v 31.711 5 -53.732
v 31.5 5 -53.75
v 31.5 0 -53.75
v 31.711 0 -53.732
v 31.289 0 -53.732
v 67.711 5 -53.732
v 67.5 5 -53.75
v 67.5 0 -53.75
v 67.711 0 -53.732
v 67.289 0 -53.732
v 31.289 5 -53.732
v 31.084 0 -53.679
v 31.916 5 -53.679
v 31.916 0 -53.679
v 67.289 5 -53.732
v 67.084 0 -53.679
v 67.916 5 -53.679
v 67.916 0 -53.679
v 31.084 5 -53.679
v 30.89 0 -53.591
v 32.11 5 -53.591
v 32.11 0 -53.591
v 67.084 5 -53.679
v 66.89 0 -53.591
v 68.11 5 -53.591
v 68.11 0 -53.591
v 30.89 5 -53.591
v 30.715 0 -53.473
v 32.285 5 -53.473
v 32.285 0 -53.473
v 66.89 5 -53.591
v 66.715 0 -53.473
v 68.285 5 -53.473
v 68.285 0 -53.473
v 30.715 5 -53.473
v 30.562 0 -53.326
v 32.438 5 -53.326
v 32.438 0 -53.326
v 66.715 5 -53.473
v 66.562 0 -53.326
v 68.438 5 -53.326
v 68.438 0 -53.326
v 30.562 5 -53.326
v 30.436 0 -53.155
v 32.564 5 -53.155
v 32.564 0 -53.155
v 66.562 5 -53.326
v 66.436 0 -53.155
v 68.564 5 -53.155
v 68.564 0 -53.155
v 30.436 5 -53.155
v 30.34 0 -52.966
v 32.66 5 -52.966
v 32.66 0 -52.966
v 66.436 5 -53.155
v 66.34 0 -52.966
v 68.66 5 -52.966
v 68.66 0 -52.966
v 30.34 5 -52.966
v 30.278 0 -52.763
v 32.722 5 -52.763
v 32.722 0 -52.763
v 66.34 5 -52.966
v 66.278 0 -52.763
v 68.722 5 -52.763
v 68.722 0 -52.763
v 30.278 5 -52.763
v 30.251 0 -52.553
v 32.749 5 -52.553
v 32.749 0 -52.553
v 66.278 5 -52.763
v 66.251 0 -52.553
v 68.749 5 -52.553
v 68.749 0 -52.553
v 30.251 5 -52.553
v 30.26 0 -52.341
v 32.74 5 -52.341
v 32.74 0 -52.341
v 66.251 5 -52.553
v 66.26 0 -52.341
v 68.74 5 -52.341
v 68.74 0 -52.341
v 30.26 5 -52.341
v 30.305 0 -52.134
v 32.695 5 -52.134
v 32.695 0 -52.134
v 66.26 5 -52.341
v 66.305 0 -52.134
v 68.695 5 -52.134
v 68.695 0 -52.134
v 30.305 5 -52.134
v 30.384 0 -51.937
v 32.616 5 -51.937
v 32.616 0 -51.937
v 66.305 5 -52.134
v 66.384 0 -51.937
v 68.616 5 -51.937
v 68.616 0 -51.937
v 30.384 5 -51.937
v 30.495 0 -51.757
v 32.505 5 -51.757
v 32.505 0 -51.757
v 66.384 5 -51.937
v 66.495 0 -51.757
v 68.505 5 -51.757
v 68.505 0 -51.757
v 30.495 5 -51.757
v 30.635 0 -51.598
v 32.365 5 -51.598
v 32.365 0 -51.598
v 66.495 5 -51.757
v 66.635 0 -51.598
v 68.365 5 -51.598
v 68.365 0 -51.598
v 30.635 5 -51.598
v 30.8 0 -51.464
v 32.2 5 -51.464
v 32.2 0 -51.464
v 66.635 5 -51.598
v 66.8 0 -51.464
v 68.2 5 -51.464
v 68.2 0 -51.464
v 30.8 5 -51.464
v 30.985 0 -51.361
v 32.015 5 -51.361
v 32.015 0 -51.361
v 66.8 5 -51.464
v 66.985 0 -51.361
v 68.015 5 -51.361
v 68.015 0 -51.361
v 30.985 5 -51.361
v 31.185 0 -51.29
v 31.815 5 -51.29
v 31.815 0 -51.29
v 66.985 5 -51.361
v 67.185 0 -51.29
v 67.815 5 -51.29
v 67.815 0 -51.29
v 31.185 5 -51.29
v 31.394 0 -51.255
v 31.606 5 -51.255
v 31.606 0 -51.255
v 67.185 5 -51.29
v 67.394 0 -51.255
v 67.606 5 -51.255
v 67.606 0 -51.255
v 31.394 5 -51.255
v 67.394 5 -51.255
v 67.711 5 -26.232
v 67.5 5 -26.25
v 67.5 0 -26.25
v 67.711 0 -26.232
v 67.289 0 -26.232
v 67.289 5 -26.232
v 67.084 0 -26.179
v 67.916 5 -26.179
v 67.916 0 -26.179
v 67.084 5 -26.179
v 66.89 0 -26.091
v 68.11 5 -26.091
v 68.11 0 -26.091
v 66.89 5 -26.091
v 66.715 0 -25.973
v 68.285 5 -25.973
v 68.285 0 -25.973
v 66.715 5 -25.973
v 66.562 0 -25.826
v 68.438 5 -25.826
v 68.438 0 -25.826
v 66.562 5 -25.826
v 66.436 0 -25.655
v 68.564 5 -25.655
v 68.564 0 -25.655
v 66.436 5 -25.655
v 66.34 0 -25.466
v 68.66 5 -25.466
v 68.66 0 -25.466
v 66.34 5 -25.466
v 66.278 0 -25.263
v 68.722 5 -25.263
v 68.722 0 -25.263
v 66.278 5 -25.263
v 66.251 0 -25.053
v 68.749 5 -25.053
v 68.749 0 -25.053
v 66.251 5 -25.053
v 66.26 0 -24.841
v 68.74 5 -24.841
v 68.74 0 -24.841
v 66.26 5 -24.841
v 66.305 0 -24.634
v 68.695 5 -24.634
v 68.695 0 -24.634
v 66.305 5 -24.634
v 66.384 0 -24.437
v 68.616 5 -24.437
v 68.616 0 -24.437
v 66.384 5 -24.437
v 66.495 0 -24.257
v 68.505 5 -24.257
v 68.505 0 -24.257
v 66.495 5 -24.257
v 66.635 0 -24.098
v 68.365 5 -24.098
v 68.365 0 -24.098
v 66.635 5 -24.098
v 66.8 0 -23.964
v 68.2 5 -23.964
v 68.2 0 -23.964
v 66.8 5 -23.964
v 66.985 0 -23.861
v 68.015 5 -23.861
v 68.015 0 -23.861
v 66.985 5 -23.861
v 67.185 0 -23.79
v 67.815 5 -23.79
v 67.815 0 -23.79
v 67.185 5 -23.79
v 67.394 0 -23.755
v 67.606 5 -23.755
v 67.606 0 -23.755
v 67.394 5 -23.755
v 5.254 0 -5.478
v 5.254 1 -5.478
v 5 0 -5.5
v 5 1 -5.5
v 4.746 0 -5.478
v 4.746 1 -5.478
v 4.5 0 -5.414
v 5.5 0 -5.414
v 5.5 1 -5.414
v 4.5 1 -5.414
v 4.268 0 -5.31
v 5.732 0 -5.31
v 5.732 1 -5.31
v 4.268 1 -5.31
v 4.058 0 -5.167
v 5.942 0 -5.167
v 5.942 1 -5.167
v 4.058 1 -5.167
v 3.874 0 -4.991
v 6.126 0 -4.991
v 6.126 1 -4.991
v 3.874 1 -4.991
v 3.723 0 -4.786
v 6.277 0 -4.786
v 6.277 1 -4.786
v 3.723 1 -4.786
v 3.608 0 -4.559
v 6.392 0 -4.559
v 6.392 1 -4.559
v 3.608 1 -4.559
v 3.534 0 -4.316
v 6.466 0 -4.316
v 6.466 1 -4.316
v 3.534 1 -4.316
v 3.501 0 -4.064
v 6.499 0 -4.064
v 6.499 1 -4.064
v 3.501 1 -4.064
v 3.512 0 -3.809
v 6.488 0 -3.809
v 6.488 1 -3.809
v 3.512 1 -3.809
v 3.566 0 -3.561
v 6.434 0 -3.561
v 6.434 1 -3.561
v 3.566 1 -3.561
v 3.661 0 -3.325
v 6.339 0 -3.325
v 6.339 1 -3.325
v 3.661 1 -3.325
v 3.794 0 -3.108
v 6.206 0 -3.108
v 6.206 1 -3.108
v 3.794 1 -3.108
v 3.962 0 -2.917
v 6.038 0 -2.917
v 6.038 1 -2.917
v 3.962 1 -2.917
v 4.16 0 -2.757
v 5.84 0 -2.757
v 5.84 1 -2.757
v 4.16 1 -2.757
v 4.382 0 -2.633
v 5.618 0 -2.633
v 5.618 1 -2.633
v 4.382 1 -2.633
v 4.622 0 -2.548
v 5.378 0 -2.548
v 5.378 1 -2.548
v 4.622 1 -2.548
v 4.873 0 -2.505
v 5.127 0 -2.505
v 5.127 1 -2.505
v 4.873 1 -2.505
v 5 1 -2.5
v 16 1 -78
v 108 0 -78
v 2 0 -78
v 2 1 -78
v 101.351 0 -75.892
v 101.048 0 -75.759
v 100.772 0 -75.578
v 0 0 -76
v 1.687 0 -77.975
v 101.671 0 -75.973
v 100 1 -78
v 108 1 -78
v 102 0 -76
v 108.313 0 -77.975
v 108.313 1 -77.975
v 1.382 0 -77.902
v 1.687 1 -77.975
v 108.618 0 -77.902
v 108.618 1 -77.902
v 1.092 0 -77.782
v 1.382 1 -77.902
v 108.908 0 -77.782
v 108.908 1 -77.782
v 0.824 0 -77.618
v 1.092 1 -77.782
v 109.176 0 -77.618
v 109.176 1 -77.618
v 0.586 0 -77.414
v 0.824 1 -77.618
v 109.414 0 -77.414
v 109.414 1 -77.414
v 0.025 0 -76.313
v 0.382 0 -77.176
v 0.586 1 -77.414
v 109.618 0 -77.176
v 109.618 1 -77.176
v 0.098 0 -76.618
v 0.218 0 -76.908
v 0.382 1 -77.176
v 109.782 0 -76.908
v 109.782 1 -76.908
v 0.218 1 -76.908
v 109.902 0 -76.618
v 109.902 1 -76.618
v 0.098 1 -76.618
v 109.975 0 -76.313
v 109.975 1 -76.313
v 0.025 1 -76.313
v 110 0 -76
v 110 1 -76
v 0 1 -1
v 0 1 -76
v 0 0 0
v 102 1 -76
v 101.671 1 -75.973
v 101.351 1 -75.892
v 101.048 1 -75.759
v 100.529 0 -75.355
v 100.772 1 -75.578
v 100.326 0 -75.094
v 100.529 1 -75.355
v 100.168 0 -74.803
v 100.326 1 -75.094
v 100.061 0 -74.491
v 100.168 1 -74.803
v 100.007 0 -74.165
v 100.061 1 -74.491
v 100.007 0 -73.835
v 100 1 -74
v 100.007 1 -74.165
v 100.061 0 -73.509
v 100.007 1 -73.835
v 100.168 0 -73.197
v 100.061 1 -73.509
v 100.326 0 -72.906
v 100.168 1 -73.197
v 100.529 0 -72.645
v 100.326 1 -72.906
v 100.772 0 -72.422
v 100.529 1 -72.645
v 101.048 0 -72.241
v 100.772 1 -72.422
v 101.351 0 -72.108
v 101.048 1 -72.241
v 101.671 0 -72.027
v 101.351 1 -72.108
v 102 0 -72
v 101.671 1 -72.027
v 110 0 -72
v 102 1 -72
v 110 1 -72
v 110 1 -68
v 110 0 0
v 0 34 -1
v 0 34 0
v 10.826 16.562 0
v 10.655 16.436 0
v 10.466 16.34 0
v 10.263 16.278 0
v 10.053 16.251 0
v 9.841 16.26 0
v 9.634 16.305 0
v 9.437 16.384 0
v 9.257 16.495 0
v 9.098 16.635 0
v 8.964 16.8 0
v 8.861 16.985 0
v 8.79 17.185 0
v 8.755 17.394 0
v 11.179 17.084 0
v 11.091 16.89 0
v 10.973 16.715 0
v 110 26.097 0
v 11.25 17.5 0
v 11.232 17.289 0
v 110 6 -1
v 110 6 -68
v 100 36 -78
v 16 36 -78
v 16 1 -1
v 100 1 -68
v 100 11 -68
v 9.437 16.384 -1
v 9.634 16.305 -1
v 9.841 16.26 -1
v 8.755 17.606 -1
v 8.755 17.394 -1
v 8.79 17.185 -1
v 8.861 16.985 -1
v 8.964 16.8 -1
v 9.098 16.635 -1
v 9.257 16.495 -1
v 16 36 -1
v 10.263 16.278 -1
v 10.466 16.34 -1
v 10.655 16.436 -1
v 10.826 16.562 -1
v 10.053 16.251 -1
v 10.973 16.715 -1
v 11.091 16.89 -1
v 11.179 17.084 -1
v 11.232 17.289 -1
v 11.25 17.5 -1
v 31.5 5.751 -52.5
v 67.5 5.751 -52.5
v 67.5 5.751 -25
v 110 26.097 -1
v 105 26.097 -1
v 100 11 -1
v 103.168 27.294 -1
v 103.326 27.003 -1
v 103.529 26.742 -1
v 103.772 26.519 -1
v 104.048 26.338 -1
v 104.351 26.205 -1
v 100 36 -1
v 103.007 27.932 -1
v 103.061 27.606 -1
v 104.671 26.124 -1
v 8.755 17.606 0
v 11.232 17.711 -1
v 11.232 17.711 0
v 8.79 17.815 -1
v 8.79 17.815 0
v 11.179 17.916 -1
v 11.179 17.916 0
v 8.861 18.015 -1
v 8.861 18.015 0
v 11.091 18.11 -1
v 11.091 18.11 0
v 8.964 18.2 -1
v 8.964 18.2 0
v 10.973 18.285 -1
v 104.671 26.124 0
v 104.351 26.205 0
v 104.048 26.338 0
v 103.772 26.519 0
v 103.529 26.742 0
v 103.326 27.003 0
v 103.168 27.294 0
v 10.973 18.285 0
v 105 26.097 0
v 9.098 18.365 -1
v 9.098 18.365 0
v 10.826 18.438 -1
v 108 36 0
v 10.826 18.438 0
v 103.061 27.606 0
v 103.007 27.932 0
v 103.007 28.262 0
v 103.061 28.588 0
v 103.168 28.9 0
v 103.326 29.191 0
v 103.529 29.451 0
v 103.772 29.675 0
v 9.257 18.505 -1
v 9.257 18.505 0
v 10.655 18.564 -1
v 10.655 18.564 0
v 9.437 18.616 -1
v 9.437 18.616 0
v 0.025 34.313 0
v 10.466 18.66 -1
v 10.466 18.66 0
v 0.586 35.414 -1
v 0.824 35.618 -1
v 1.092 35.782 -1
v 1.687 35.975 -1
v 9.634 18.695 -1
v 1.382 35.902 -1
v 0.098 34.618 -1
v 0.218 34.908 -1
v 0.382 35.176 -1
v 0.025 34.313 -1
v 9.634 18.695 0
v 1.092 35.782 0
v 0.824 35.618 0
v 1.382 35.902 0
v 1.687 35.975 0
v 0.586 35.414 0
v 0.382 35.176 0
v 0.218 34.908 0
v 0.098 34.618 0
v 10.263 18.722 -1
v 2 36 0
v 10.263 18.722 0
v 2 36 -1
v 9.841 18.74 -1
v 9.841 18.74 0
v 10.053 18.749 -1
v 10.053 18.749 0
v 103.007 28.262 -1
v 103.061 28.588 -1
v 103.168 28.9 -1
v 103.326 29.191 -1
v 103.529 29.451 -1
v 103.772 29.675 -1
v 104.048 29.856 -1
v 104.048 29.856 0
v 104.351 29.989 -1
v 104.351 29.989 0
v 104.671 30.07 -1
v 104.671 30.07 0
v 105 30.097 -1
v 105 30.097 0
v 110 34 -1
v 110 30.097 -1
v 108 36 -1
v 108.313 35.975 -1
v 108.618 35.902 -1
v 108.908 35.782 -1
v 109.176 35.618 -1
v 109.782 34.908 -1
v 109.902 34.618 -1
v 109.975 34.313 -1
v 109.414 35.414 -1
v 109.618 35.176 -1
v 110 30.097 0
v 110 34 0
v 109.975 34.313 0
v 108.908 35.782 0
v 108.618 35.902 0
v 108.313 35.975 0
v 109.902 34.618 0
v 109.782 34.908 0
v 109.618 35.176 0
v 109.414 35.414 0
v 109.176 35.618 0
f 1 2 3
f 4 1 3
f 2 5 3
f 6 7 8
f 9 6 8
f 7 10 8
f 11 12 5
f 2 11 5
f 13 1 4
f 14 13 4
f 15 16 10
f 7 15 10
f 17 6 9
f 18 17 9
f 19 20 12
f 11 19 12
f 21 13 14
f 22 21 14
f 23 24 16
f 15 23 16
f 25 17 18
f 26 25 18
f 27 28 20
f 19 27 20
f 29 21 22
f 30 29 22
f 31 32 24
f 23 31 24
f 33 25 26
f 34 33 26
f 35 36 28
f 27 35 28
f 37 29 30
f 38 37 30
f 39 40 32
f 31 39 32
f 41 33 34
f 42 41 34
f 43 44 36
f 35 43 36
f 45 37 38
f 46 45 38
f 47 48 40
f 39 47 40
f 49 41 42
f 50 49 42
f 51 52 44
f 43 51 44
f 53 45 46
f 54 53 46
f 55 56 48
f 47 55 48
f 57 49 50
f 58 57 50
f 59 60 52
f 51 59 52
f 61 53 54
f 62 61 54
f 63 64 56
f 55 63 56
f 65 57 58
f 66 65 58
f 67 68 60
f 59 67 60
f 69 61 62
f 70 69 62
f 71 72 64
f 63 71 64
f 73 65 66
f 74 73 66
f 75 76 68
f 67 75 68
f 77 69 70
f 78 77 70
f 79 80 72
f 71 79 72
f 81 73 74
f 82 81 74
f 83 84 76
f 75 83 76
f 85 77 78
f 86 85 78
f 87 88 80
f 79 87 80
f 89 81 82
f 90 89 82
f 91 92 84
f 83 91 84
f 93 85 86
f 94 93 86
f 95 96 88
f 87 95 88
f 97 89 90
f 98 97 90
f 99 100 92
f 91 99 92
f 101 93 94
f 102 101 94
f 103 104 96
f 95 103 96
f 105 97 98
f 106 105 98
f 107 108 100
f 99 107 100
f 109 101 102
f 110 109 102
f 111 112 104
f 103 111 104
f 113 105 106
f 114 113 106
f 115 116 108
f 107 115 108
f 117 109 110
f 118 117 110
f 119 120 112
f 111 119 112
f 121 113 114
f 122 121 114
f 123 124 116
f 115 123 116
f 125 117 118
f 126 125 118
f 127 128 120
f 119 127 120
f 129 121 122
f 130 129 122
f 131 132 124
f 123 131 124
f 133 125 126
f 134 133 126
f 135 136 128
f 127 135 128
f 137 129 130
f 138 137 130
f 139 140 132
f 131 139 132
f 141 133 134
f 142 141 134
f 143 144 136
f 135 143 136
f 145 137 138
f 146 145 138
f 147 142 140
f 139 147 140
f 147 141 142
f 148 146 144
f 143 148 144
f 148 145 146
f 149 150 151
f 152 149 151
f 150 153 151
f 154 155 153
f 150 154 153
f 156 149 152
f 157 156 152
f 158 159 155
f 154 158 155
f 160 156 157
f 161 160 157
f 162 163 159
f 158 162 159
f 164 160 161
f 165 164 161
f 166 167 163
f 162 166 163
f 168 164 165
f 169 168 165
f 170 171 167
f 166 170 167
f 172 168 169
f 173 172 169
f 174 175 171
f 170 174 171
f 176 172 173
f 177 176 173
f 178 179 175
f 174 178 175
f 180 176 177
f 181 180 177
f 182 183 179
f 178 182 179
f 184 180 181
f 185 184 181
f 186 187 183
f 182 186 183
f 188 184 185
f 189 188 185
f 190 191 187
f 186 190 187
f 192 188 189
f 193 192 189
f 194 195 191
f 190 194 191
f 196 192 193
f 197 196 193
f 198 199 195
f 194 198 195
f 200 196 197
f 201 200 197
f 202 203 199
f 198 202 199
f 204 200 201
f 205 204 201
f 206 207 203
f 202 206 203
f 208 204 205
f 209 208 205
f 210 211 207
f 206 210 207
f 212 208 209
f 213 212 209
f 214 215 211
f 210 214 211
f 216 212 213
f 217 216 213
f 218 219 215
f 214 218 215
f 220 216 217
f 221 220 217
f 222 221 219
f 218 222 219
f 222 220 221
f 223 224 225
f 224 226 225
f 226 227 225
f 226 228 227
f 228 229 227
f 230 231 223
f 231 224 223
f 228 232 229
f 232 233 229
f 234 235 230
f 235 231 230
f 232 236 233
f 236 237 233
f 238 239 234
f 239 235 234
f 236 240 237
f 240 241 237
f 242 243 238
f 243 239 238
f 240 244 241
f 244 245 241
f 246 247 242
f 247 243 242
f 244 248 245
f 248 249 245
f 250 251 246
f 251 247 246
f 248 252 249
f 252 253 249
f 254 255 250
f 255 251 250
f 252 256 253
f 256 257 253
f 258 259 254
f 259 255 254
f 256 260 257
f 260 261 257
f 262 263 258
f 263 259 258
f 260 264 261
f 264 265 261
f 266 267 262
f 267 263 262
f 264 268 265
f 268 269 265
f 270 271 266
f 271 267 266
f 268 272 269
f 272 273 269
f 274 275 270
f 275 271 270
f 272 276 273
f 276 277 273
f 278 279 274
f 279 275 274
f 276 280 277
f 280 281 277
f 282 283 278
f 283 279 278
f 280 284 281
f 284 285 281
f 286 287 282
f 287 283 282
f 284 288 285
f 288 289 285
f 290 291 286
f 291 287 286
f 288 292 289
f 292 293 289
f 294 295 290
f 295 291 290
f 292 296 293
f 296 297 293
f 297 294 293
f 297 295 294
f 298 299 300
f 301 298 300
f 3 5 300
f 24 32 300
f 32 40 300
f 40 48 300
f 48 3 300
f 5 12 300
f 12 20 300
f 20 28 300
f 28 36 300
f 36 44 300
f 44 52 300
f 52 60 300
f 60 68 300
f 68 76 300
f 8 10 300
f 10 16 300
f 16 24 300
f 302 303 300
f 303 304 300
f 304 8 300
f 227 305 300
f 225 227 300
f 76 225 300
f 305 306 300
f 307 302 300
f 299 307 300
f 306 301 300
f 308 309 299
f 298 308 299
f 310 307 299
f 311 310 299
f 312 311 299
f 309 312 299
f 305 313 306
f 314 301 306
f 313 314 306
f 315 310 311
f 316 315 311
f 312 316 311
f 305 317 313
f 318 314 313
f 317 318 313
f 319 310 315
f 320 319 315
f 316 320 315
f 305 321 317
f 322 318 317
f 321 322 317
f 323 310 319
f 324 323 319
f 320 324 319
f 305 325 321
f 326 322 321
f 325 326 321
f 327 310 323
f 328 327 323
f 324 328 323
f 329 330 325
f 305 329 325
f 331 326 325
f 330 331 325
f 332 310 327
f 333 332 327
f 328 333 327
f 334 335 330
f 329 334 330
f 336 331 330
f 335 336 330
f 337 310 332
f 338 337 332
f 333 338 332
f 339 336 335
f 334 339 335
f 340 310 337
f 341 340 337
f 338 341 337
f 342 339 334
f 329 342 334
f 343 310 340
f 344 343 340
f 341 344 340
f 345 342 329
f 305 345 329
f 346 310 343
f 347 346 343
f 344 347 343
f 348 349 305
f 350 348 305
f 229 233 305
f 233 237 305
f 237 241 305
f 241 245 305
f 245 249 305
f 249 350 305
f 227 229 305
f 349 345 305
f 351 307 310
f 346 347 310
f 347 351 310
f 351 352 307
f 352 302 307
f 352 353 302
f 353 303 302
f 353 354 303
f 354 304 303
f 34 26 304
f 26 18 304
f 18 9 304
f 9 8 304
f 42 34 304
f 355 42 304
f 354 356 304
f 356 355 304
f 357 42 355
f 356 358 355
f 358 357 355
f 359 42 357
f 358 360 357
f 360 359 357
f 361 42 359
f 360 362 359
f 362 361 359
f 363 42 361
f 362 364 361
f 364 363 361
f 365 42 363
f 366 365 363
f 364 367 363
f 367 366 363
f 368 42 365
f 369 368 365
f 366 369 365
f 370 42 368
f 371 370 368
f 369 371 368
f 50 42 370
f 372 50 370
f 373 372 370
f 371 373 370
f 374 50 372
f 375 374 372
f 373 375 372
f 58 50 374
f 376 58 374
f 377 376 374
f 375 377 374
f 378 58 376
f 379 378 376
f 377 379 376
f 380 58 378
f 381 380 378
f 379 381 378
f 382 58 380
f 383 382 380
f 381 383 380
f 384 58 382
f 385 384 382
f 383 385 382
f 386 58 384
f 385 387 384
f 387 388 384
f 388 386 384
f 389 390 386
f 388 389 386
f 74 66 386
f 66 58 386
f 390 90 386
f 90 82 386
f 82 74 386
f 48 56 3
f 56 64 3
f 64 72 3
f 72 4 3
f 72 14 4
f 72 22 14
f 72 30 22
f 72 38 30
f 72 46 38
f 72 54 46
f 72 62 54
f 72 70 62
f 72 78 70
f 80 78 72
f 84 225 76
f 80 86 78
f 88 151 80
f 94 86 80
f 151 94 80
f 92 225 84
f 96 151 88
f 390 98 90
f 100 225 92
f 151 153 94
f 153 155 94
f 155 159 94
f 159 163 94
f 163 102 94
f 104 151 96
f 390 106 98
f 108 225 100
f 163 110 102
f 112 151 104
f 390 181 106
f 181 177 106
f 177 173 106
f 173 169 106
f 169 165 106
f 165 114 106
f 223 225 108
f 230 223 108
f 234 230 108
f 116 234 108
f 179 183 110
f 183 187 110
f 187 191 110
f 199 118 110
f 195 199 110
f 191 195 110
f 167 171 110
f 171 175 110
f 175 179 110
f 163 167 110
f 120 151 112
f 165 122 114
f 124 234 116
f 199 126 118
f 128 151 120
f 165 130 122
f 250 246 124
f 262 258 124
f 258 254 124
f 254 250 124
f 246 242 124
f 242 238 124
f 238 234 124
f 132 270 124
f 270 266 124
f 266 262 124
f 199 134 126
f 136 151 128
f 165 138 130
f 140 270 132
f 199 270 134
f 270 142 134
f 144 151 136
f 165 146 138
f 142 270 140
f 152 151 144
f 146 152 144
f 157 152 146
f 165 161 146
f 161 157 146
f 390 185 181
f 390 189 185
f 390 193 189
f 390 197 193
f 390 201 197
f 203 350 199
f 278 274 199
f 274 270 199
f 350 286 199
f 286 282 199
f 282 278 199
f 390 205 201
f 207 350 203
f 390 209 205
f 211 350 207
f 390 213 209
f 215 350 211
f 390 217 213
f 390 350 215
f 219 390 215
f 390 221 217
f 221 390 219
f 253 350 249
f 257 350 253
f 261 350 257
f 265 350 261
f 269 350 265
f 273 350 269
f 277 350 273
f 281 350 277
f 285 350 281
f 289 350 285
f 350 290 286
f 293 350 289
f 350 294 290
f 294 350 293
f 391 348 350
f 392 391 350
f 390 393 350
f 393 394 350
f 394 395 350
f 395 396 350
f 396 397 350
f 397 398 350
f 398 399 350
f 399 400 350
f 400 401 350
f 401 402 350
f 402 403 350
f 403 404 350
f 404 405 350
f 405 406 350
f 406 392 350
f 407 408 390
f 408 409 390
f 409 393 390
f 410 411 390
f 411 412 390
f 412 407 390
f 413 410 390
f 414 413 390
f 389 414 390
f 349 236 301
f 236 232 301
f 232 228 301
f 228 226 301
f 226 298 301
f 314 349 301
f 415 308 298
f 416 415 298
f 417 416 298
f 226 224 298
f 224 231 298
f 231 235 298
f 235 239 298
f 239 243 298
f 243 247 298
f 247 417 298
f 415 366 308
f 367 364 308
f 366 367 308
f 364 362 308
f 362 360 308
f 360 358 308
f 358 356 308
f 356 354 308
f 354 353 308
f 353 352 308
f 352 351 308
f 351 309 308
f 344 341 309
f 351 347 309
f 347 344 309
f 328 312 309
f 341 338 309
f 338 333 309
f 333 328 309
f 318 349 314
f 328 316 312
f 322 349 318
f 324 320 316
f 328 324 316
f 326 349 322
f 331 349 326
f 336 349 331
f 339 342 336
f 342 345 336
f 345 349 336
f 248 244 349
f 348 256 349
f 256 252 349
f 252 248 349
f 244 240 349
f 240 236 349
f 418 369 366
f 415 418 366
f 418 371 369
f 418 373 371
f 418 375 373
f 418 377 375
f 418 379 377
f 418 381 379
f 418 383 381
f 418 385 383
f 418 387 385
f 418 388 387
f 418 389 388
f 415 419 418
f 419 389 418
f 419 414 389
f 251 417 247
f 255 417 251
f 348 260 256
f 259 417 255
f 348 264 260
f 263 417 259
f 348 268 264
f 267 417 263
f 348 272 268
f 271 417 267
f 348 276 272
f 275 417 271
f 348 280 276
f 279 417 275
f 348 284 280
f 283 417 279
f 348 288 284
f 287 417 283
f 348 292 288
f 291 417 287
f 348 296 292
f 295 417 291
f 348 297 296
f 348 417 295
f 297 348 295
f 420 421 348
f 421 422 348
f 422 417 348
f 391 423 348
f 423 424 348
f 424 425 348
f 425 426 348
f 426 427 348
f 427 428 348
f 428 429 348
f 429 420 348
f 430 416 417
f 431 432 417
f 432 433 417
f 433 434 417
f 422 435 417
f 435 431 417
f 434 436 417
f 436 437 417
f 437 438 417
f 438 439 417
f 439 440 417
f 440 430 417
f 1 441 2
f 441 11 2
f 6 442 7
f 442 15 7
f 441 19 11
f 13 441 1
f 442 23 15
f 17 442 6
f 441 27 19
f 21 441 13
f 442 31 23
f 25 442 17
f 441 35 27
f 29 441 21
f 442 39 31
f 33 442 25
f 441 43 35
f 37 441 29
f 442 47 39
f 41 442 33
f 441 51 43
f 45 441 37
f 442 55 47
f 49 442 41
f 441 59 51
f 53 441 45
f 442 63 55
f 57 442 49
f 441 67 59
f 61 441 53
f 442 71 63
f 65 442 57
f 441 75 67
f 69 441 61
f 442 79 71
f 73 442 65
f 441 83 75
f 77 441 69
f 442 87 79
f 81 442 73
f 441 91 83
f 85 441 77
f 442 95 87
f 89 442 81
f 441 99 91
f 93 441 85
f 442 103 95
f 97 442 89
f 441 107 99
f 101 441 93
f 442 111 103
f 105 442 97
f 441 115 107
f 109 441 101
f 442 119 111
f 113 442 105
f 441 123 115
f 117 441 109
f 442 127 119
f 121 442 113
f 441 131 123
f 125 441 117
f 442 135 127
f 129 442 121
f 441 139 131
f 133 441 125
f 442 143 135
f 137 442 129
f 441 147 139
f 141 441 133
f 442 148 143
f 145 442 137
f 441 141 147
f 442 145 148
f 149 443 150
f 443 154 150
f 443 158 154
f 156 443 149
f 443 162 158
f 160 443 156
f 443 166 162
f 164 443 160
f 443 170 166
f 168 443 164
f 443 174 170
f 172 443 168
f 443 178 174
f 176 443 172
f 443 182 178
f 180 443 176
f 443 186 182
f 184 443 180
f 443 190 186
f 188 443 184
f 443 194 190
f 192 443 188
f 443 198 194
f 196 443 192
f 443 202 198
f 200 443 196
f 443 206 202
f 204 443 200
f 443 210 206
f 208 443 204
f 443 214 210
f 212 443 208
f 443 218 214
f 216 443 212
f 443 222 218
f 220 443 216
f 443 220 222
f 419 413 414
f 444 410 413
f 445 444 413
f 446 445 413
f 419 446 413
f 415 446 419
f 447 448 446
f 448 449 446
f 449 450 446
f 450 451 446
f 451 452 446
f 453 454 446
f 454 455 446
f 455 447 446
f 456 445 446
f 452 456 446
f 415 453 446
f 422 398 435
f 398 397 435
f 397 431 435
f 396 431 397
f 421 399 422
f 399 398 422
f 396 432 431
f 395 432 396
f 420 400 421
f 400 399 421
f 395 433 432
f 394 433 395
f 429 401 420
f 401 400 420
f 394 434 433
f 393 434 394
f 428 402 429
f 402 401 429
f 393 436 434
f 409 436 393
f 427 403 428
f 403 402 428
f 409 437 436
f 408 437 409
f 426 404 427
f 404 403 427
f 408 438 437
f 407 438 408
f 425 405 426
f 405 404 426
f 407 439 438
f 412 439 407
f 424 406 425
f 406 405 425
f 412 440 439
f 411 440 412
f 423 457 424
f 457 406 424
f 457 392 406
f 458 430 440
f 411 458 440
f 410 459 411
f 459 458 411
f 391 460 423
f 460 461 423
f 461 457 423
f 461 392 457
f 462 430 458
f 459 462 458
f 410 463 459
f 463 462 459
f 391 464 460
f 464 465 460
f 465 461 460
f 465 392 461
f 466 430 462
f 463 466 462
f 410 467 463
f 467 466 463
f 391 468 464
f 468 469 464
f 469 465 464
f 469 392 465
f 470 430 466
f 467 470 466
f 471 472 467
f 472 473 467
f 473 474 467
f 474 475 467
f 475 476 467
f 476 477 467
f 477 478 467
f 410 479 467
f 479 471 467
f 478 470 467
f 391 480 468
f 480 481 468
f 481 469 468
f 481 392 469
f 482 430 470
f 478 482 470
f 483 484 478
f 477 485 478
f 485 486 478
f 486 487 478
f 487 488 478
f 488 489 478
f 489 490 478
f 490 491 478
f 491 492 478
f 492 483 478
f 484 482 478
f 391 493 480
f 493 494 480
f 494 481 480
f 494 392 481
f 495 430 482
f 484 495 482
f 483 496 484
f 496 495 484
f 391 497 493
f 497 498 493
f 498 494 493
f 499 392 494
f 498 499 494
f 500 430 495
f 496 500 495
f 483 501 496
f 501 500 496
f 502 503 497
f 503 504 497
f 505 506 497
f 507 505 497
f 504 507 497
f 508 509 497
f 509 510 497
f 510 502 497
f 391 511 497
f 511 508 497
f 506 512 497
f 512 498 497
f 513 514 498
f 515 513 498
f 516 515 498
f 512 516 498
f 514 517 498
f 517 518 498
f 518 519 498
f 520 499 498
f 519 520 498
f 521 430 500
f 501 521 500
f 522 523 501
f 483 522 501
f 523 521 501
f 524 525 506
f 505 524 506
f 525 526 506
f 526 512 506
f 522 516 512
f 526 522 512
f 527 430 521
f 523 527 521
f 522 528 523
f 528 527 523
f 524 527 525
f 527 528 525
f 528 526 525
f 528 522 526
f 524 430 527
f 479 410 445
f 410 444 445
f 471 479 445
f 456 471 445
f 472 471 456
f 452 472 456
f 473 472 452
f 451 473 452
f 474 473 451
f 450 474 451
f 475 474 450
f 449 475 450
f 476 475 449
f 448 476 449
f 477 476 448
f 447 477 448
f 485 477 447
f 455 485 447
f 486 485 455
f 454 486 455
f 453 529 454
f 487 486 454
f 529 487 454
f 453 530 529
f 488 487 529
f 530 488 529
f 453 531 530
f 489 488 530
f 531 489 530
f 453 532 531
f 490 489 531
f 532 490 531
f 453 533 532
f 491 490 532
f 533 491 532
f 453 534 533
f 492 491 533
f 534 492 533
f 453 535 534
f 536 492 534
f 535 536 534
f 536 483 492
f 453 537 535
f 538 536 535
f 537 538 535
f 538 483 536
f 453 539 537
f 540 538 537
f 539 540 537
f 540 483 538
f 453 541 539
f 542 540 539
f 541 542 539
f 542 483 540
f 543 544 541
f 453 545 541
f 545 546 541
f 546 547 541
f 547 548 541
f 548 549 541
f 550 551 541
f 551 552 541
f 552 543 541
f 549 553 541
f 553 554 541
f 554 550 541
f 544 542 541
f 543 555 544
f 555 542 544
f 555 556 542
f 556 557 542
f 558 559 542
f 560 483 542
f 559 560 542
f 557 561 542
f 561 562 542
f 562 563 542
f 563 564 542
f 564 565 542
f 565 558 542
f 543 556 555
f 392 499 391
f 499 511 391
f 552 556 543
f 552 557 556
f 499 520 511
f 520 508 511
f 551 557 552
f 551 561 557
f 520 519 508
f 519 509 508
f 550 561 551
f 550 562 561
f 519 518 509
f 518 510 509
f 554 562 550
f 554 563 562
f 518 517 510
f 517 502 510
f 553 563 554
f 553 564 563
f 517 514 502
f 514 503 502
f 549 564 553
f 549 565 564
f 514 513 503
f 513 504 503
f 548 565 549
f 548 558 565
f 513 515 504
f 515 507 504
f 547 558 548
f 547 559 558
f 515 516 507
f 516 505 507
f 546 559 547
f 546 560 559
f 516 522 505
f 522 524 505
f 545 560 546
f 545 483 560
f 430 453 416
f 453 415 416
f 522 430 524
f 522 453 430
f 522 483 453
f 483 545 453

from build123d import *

# Parameters (mm, degrees)
SKETCH1_W             = 110
SKETCH1_H             = 78
BOSS_EXTRUDE1_DEPTH   = 36
M3_TAPPED_HOLE2_D     = 2.5
M3_TAPPED_HOLE2_DEPTH = 5
M3_TAPPED_HOLE2_TIP   = 0.751075774
SKETCH8_W             = 16
SKETCH8_H             = 77
CUT_EXTRUDE2_DEPTH    = 35
F_3_0MM_DOWEL_HOLE1_D = 3
SKETCH12_W            = 10
SKETCH12_H            = 67
CUT_EXTRUDE4_DEPTH    = 25
SKETCH13_W            = 10
SKETCH13_H            = 10
CUT_EXTRUDE5_DEPTH    = 35
CUT_EXTRUDE7_DEPTH    = 67
CUT_EXTRUDE8_DEPTH    = 2
M3_TAPPED_HOLE3_D     = 2.5
FILLET1_R             = 2
CUT_EXTRUDE9_DEPTH    = 37


with BuildPart() as part:
    # Sketch1 → Boss-Extrude1 (new body)
    with BuildSketch(Plane(origin=(0, 0, 0), x_dir=(1, 0, 0), z_dir=(0, 1, 0))):
        with Locations((55, 39)):
            Rectangle(SKETCH1_W, SKETCH1_H)
    extrude(amount=BOSS_EXTRUDE1_DEPTH)

    # M3 Tapped Hole2
    with Locations(Plane(origin=(0, 0, 0), x_dir=(-1, 0, 0), z_dir=(0, -1, 0))):
        with Locations((-67.5, 25), (-67.5, 52.5), (-31.5, 52.5)):
            Hole(M3_TAPPED_HOLE2_D / 2, depth=M3_TAPPED_HOLE2_DEPTH)
            with Locations((0, 0, -(M3_TAPPED_HOLE2_DEPTH + M3_TAPPED_HOLE2_TIP / 2))):  # 118° drill point
                Cone(0, M3_TAPPED_HOLE2_D / 2, M3_TAPPED_HOLE2_TIP, mode=Mode.SUBTRACT)

    # Sketch8 → Cut-Extrude2 (cut)
    with BuildSketch(Plane(origin=(0, 36, 0), x_dir=(1, 0, 0), z_dir=(0, 1, 0))):
        with Locations((8, 39.5)):
            Rectangle(SKETCH8_W, SKETCH8_H)
    extrude(amount=-CUT_EXTRUDE2_DEPTH, mode=Mode.SUBTRACT)

    # Ø3.0mm Dowel Hole1 (through all)
    with Locations(Plane(origin=(0, 0, 0), x_dir=(-1, 0, 0), z_dir=(0, -1, 0))):
        with Locations((-5, 4)):
            Hole(F_3_0MM_DOWEL_HOLE1_D / 2)

    # Sketch12 → Cut-Extrude4 (cut)
    with BuildSketch(Plane(origin=(0, 36, 0), x_dir=(1, 0, 0), z_dir=(0, 1, 0))):
        with Locations((105, 34.5)):
            Rectangle(SKETCH12_W, SKETCH12_H)
    extrude(amount=-CUT_EXTRUDE4_DEPTH, mode=Mode.SUBTRACT)

    # Sketch13 → Cut-Extrude5 (cut)
    with BuildSketch(Plane(origin=(0, 36, 0), x_dir=(1, 0, 0), z_dir=(0, 1, 0))):
        with Locations((105, 73)):
            Rectangle(SKETCH13_W, SKETCH13_H)
    extrude(amount=-CUT_EXTRUDE5_DEPTH, mode=Mode.SUBTRACT)

    # Sketch15 → Cut-Extrude7 (cut)
    with BuildSketch(Plane(origin=(0, 0, -68), x_dir=(-1, 0, 0), z_dir=(0, 0, -1))):
        Polygon((-110, 6), (-100, 11), (-110, 11), align=None)
    extrude(amount=-CUT_EXTRUDE7_DEPTH, mode=Mode.SUBTRACT)

    # Sketch16 → Cut-Extrude8 (cut, through all)
    with BuildSketch(Plane(origin=(0, 0, -1), x_dir=(-1, 0, 0), z_dir=(0, 0, -1))):
        with BuildLine():
            Line((-115, 30.09689573), (-105, 30.09689573))
            ThreePointArc((-105, 30.09689573), (-103, 28.09689573), (-105, 26.09689573))
            Line((-105, 26.09689573), (-115, 26.09689573))
            ThreePointArc((-115, 26.09689573), (-117, 28.09689573), (-115, 30.09689573))
        make_face()
    extrude(amount=-CUT_EXTRUDE8_DEPTH, mode=Mode.SUBTRACT)

    # M3 Tapped Hole3 (through all)
    with Locations(Plane.XY):
        with Locations((10, 17.5)):
            Hole(M3_TAPPED_HOLE3_D / 2)

    # Fillet1
    fillet1_edges = [part.edges().sort_by_distance(p)[0] for p in [
        (110, 36, -0.5),
        (0, 36, -0.5),
        (0, 0.5, -78),
        (110, 0.5, -78),
    ]]
    fillet(fillet1_edges, radius=FILLET1_R)

    # Sketch20 → Cut-Extrude9 (cut, through all)
    with BuildSketch(Plane(origin=(0, 0, 0), x_dir=(-1, 0, 0), z_dir=(0, -1, 0))):
        with BuildLine():
            Line((-102, 72), (-113.136440261, 72))
            ThreePointArc((-113.136440261, 72), (-115.136440261, 74), (-113.136440261, 76))
            Line((-113.136440261, 76), (-102, 76))
            ThreePointArc((-102, 76), (-100, 74), (-102, 72))
        make_face()
    extrude(amount=-CUT_EXTRUDE9_DEPTH, mode=Mode.SUBTRACT)


solid = part.part
